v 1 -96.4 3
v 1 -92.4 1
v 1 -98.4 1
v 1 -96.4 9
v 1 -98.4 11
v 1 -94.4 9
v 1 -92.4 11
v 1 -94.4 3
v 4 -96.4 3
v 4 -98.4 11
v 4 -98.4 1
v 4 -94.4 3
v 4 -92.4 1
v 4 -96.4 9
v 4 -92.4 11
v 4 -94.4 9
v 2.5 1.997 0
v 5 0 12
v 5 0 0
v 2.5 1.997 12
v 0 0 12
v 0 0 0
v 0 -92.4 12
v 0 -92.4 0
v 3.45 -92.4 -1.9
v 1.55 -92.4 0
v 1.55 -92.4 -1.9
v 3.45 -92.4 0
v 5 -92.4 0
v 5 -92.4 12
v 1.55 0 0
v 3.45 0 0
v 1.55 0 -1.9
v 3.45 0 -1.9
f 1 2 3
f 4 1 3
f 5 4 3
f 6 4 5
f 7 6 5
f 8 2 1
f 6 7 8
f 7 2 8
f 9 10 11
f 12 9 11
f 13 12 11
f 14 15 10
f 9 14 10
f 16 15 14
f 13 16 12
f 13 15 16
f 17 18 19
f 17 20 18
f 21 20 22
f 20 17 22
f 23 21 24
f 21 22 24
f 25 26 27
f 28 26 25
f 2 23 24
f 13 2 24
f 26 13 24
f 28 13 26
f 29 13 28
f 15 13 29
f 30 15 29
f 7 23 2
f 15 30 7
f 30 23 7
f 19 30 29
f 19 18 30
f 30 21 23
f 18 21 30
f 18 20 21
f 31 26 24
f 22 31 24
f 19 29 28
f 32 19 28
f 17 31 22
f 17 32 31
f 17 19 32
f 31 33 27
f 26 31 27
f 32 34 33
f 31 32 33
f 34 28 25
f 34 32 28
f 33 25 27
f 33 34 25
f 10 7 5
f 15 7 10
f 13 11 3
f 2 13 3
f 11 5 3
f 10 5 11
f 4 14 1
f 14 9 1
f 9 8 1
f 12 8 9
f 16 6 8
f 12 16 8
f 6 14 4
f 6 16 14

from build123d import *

# Parameters (mm, degrees)
EXTRUDE_1_DEPTH          = 12
EXTRUDE_2_DEPTH          = 1.9
SKETCH_3_W               = 3
SKETCH_3_H               = 10
EXTRUDE_3_DEPTH          = 6
CUT_EXTRUDE_1_DEPTH      = 100.209676947
CUT_EXTRUDE_1_DEPTH_BACK = 3
SKETCH_4_W               = 6
SKETCH_4_H               = 2


with BuildPart() as part:
    # 草图1 → 凸台-拉伸1 (new body)
    with BuildSketch(Plane.XY):
        Polygon((2.5, 1.997498436), (0, 0), (0, -92.4), (5, -92.4), (5, 0), align=None)
    extrude(amount=EXTRUDE_1_DEPTH)

    # 草图2 → 凸台-拉伸2 (add)
    with BuildSketch(Plane(origin=(0, 0, 0), x_dir=(-1, 0, 0), z_dir=(0, 0, -1))):
        Polygon((-1.55, 0), (-3.45, 0), (-3.45, -1.400450224), (-3.45, -92.4), (-1.55, -92.4), (-1.55, -1.477736038), align=None)
    extrude(amount=EXTRUDE_2_DEPTH)

    # 草图3 → 凸台-拉伸3 (add)
    with BuildSketch(Plane.XZ.offset(92.4)):
        with Locations((2.5, 6)):
            Rectangle(SKETCH_3_W, SKETCH_3_H)
    extrude(amount=EXTRUDE_3_DEPTH)

    # 草图4 → 切除-拉伸1 (cut, two sides: drawn at the far end of the back side and taken through both)
    with BuildSketch(Plane(origin=(4, 0, 0), x_dir=(0, 0, -1), z_dir=(1, 0, 0)).offset(-CUT_EXTRUDE_1_DEPTH_BACK)):
        with Locations((-6, -95.4)):
            Rectangle(SKETCH_4_W, SKETCH_4_H)
    extrude(amount=CUT_EXTRUDE_1_DEPTH + CUT_EXTRUDE_1_DEPTH_BACK, mode=Mode.SUBTRACT)


solid = part.part
